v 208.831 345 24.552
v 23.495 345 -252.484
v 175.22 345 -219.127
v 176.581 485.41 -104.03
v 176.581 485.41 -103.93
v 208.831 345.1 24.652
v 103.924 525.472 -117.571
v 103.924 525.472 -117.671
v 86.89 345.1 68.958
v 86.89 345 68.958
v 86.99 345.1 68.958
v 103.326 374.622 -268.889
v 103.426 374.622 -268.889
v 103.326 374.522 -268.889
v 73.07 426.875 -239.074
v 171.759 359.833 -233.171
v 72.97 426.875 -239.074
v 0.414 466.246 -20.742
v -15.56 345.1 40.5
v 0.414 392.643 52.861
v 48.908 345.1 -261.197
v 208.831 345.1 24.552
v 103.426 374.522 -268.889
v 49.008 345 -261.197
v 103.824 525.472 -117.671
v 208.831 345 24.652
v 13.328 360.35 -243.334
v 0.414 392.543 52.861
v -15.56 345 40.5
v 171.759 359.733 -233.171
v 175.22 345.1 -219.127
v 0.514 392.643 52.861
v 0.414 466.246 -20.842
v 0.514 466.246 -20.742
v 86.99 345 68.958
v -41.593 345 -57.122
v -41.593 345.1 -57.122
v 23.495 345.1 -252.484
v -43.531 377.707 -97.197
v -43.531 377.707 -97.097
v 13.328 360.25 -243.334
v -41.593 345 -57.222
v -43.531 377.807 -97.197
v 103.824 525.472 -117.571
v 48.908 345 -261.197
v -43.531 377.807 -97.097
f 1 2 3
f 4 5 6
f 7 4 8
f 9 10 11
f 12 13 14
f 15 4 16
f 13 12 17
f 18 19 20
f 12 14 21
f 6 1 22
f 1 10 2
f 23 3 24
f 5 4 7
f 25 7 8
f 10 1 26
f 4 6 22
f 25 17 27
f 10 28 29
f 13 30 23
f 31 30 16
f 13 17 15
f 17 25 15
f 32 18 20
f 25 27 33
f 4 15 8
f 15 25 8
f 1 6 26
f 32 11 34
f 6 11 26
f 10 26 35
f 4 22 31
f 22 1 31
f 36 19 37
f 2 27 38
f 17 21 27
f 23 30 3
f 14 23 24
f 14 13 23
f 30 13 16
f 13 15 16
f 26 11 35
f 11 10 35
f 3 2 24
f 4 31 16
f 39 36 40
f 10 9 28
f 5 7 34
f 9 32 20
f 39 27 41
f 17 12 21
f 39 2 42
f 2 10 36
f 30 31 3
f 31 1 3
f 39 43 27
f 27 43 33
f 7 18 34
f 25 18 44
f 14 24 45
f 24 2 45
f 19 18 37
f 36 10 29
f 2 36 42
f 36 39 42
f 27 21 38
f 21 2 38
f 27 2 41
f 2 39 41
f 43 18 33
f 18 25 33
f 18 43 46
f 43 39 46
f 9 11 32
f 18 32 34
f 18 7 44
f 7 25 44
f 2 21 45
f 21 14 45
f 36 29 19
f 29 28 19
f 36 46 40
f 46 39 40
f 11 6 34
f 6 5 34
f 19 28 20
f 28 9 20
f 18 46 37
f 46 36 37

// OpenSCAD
hull(){ translate([176.481013599,485.309875901,-104.030244482])cube(0.1,0.1,0.1);
translate([103.823839662,525.371835443,-117.671413502])cube(0.1,0.1,0.1);
translate([86.8897637795,345.0,68.8582677165])cube(0.1,0.1,0.1);
translate([208.731343284,345.0,24.552238806])cube(0.1,0.1,0.1);
translate([171.6591854,359.732698039,-233.171382317])cube(0.1,0.1,0.1);
translate([175.120481928,345.0,-219.126506024])cube(0.1,0.1,0.1);
translate([72.9702572347,426.774517685,-239.073553055])cube(0.1,0.1,0.1);
translate([48.9084507042,345.0,-261.197183099])cube(0.1,0.1,0.1);
translate([103.326086322,374.52169726,-268.889456328])cube(0.1,0.1,0.1);
translate([13.3277988615,360.250237192,-243.333728653])cube(0.1,0.1,0.1);
translate([23.4946236559,345.0,-252.483870968])cube(0.1,0.1,0.1);
translate([-43.5307743216,377.706816678,-97.1972203839])cube(0.1,0.1,0.1);
translate([0.414364640884,392.542751907,52.7611154959])cube(0.1,0.1,0.1);
translate([0.414364640884,466.14640884,-20.8425414365])cube(0.1,0.1,0.1);
translate([-15.56,345.0,40.4])cube(0.1,0.1,0.1);
translate([-41.5925925926,345.0,-57.2222222222])cube(0.1,0.1,0.1); }
